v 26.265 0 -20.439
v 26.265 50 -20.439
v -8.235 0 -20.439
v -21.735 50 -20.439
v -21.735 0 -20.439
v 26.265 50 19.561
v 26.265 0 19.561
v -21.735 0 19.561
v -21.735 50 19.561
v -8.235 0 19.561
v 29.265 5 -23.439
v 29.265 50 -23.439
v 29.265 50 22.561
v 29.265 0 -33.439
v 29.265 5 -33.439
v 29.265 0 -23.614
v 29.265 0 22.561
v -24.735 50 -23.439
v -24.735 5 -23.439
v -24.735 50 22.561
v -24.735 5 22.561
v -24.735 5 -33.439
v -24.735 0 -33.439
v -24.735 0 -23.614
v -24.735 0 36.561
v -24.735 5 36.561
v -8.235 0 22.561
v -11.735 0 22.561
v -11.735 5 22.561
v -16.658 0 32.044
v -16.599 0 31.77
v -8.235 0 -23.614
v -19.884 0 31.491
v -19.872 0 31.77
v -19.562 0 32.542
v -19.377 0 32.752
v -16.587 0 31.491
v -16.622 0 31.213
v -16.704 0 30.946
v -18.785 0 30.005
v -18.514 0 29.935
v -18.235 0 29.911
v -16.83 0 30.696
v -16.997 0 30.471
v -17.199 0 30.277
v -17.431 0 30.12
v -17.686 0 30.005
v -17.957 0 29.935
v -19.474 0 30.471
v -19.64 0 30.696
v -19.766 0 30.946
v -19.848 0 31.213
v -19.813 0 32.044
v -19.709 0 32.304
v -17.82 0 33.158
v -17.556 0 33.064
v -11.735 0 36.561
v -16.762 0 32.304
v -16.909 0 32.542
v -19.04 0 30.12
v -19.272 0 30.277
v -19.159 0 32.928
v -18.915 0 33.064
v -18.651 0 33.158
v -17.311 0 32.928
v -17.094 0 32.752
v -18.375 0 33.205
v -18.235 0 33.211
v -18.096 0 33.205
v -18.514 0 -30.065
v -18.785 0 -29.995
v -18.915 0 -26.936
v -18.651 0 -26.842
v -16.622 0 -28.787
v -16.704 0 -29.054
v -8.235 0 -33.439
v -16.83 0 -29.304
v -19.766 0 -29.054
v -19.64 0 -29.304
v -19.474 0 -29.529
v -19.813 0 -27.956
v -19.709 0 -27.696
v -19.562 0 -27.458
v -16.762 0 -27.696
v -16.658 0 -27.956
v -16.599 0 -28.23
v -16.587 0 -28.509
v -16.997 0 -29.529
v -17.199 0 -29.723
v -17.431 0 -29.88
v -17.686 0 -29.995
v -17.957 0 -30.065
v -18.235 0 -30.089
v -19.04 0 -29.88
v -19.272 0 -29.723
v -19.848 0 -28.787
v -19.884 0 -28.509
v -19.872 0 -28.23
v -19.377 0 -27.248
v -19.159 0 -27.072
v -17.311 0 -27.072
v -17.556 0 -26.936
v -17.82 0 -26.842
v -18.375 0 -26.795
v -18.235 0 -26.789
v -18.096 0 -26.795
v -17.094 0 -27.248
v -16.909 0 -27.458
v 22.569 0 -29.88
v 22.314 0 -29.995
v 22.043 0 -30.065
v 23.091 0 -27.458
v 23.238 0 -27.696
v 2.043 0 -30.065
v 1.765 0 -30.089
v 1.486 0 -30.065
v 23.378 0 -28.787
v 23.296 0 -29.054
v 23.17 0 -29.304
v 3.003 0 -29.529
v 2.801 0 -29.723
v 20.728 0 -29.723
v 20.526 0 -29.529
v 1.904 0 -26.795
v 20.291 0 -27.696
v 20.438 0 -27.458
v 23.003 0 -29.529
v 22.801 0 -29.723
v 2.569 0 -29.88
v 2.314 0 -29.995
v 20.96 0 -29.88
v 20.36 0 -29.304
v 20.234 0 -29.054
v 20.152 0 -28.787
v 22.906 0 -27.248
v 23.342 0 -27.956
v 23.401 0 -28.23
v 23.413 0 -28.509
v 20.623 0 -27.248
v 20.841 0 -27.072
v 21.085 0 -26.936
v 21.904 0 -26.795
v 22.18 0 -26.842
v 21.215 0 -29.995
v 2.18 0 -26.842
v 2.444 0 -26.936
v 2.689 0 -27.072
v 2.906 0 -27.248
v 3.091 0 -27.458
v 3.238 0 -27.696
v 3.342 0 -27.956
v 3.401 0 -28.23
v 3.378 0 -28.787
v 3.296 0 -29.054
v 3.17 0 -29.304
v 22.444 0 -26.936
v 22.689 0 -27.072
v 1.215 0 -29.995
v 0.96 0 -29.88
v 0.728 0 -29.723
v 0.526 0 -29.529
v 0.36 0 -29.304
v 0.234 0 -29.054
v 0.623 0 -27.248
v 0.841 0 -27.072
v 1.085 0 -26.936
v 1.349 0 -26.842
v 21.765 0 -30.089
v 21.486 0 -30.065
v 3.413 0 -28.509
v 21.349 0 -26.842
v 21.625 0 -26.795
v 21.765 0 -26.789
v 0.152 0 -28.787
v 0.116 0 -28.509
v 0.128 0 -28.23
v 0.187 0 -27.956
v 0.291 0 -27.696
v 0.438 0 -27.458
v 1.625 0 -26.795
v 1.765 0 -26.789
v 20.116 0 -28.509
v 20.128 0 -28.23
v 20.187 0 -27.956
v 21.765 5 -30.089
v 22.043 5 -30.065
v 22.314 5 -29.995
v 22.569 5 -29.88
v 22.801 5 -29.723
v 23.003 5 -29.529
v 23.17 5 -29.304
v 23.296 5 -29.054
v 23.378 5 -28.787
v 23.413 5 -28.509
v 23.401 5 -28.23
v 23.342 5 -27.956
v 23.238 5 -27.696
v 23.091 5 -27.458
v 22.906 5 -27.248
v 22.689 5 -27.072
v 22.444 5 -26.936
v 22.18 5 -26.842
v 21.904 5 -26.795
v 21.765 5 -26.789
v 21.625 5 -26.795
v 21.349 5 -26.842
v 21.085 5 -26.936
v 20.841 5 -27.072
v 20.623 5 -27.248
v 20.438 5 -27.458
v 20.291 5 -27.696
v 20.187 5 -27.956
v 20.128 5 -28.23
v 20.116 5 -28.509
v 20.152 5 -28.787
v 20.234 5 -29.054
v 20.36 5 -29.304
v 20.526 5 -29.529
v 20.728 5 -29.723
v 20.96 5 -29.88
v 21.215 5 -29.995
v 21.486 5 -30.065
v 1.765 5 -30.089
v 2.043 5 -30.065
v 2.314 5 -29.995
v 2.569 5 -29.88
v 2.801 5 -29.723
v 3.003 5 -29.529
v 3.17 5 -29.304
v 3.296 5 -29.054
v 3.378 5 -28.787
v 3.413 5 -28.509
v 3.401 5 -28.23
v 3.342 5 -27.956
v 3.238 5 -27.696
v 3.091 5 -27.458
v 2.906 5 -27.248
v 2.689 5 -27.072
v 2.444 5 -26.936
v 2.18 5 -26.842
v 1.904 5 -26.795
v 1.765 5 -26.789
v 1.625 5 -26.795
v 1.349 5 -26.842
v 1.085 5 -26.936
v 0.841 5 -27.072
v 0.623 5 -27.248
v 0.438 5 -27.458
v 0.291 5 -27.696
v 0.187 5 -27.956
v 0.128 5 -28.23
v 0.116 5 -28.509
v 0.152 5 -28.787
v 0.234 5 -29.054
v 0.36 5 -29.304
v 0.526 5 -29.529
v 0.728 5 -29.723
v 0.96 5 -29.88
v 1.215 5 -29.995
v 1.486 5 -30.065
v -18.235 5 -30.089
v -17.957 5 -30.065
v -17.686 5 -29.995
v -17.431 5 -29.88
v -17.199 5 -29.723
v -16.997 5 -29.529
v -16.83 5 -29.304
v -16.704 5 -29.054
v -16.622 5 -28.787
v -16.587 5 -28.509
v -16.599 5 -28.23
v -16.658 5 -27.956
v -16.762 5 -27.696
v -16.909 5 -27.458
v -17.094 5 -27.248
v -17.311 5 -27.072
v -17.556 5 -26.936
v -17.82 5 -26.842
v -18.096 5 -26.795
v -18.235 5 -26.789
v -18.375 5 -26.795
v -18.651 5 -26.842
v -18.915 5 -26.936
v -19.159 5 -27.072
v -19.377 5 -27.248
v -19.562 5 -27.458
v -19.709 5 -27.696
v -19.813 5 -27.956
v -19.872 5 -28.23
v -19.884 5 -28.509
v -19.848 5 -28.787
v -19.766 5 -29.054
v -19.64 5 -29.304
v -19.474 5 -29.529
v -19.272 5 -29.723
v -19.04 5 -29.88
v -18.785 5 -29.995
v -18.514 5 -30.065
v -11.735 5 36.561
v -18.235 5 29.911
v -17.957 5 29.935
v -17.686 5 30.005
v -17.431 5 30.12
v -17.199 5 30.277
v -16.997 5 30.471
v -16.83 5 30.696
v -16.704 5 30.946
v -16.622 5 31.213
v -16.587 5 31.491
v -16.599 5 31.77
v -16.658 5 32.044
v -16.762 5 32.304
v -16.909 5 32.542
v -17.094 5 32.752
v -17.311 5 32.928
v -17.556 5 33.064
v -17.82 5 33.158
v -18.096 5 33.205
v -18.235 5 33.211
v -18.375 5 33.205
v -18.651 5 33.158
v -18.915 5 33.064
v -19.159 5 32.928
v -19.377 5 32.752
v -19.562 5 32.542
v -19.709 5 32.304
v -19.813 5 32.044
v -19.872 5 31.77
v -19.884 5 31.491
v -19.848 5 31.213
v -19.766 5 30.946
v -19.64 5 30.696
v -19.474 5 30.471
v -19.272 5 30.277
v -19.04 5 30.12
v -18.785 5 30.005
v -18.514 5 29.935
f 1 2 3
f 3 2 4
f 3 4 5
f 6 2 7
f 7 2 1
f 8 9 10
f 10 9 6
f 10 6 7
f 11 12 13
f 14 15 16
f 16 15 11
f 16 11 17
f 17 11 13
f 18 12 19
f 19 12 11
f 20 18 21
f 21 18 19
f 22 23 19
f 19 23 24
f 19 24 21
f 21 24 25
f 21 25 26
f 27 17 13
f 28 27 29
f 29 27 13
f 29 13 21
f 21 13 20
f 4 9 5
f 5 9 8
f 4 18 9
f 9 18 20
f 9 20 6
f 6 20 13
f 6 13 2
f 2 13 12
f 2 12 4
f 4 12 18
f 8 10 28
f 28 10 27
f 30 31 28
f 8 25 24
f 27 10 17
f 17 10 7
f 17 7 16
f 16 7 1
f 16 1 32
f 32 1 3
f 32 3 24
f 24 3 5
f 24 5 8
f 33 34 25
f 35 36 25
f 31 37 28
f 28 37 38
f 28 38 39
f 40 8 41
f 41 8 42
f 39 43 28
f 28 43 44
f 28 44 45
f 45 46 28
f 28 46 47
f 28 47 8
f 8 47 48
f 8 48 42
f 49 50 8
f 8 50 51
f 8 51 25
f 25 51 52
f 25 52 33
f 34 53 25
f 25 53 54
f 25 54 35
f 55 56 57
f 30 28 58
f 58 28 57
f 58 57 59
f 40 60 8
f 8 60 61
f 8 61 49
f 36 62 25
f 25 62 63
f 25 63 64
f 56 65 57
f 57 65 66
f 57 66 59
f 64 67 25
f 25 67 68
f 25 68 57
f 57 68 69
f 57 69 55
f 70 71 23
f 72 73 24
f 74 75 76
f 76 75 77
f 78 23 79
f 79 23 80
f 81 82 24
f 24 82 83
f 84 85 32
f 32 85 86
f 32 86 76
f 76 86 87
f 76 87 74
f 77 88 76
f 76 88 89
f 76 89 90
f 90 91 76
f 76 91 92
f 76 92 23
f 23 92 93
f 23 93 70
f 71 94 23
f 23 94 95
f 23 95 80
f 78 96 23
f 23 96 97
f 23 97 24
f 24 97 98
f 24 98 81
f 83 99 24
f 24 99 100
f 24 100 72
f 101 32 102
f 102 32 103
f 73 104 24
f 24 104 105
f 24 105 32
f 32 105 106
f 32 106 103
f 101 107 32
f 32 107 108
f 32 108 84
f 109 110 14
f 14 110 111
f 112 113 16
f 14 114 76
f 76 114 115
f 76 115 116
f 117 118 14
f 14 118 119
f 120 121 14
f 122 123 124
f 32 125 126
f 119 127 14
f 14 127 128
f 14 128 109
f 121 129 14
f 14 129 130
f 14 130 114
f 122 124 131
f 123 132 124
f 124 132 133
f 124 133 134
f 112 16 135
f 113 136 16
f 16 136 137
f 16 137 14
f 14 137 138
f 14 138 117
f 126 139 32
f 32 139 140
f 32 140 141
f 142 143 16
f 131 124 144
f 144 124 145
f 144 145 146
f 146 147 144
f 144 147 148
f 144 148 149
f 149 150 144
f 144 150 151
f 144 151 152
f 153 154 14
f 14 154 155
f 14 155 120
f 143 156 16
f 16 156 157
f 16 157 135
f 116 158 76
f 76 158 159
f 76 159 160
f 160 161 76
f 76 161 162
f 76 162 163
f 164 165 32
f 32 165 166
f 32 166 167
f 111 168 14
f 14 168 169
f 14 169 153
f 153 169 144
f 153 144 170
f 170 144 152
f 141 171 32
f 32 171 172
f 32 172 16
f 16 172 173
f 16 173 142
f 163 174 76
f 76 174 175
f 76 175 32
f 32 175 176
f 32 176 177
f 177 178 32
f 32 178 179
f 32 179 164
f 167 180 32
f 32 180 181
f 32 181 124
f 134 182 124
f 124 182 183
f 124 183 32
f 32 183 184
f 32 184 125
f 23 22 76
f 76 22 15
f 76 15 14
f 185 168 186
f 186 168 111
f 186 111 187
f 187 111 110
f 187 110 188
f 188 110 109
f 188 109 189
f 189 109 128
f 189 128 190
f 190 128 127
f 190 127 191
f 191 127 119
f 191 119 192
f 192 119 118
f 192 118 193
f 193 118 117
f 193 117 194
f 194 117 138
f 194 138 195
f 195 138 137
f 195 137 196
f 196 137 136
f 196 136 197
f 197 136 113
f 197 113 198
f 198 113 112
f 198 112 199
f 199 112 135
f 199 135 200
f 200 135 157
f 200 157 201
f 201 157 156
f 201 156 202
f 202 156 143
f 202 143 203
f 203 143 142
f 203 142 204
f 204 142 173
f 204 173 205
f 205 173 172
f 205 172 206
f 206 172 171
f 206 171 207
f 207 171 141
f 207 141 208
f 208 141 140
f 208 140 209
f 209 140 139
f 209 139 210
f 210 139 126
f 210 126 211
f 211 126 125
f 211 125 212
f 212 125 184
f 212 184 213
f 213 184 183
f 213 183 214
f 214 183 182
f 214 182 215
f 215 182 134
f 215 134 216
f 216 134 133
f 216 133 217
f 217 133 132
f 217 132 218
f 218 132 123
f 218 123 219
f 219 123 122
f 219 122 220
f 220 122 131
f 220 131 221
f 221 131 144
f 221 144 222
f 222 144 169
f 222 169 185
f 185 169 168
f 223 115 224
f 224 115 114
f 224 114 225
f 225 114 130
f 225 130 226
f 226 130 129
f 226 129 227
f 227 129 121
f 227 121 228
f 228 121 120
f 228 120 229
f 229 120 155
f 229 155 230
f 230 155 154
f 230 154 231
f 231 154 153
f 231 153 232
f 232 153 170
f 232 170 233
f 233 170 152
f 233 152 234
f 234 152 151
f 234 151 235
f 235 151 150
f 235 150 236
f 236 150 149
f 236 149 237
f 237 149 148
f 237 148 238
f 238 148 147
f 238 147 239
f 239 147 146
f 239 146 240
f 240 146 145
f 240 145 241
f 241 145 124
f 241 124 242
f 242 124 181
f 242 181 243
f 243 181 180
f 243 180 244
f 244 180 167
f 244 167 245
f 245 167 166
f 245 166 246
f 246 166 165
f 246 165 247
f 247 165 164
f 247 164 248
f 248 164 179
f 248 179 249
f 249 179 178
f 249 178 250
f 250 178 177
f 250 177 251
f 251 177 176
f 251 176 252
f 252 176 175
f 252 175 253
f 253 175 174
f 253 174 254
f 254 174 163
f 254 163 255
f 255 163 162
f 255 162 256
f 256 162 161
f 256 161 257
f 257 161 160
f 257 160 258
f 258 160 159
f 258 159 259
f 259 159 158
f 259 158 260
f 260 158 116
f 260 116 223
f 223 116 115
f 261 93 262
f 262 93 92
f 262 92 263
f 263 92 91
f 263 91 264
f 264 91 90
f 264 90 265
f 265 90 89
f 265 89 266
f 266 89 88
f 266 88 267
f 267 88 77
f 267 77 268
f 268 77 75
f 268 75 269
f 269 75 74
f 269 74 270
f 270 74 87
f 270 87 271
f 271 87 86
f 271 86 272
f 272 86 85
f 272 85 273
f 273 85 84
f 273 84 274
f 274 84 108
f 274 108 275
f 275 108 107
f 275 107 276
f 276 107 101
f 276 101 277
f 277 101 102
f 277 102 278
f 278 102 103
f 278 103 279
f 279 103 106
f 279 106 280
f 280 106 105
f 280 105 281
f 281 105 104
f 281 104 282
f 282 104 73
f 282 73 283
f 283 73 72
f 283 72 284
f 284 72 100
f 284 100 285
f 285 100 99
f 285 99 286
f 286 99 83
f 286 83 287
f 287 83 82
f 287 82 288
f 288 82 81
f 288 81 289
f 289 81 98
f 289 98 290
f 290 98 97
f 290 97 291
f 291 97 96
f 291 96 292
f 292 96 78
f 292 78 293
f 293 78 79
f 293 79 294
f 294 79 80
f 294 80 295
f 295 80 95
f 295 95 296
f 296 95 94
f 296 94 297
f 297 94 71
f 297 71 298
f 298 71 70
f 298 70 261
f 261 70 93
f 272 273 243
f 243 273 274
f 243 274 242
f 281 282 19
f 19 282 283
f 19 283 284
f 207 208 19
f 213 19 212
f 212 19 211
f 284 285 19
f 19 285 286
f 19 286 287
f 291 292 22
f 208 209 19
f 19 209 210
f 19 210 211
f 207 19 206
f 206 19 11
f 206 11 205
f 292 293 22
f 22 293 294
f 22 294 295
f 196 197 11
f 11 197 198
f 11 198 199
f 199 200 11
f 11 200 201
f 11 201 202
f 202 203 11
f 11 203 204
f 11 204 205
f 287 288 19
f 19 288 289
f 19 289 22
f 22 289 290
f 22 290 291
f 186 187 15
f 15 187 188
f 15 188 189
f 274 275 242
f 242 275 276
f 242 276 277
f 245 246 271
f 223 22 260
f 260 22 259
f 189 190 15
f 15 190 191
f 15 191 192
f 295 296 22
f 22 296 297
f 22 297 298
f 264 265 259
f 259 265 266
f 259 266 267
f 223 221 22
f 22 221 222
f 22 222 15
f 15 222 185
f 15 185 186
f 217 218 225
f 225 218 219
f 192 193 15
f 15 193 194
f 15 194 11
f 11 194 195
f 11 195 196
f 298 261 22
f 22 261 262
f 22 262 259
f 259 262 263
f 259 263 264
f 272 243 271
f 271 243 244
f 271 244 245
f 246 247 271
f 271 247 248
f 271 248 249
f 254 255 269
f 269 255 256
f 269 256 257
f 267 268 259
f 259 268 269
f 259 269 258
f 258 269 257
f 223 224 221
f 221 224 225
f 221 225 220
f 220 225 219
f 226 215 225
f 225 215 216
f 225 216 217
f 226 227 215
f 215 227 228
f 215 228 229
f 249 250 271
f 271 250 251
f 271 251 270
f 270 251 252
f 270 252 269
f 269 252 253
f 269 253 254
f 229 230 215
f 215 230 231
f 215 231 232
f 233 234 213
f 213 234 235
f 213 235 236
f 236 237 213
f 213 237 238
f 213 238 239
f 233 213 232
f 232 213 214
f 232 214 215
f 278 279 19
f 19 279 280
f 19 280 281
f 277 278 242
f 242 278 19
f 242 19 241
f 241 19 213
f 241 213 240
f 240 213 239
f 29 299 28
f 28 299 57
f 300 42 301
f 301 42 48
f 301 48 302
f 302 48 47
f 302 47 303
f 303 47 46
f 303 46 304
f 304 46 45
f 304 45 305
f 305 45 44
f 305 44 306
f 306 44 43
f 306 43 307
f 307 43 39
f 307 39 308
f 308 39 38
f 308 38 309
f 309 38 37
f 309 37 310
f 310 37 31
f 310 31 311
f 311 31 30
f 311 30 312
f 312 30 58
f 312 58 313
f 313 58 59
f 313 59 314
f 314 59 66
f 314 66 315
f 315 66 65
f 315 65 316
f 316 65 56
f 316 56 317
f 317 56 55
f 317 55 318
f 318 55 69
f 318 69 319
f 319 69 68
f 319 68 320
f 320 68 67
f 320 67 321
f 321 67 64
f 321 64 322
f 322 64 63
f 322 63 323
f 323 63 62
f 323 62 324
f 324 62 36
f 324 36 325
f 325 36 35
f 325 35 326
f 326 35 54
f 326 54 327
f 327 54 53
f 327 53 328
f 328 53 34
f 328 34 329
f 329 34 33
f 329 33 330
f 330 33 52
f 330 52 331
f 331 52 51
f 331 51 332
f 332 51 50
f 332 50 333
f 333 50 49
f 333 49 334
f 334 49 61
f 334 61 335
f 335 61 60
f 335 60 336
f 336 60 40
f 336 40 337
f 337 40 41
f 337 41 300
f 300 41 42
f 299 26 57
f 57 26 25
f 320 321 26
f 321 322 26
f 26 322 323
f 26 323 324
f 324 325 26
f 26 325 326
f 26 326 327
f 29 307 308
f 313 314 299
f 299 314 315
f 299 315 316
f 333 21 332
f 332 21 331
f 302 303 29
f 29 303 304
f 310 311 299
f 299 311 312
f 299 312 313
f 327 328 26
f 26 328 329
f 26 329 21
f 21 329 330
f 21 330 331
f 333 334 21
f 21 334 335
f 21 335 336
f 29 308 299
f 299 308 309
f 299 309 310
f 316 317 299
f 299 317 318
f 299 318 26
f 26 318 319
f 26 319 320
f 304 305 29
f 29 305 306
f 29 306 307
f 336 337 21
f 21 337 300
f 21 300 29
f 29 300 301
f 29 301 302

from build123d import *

# Parameters (mm, degrees)
SKETCH1_W           = 54
SKETCH1_H           = 46
SKETCH1_W_2         = 48
SKETCH1_H_2         = 40
BOSS_EXTRUDE1_DEPTH = 50
SKETCH2_W           = 54
SKETCH2_H           = 10
SKETCH2_R           = 1.65
SKETCH2_W_2         = 13
SKETCH2_H_2         = 14
BOSS_EXTRUDE2_DEPTH = 5


with BuildPart() as part:
    # Sketch1 → Boss-Extrude1 (new body)
    with BuildSketch(Plane(origin=(0, 0, 0), x_dir=(1, 0, 0), z_dir=(0, 1, 0))):
        with Locations((2.264566872, 0.439206794)):
            Rectangle(SKETCH1_W, SKETCH1_H)
        with Locations((2.264566872, 0.439206794)):
            Rectangle(SKETCH1_W_2, SKETCH1_H_2, mode=Mode.SUBTRACT)
    extrude(amount=BOSS_EXTRUDE1_DEPTH)

    # Sketch2 → Boss-Extrude2 (add)
    # profile 1 of 2: a face of its own
    with BuildSketch(Plane(origin=(0, 0, 0), x_dir=(1, 0, 0), z_dir=(0, 1, 0))):
        with Locations((2.264566872, 28.439206794)):
            Rectangle(SKETCH2_W, SKETCH2_H)
        with Locations(Location((-18.235433128, 28.439206794, 0), (0, 0, 270))):
            Circle(SKETCH2_R, mode=Mode.SUBTRACT)
        with Locations(Location((1.764566872, 28.439206794, 0), (0, 0, 270))):
            Circle(SKETCH2_R, mode=Mode.SUBTRACT)
        with Locations(Location((21.764566872, 28.439206794, 0), (0, 0, 270))):
            Circle(SKETCH2_R, mode=Mode.SUBTRACT)
    # profile 2 of 2: a face of its own
    with BuildSketch(Plane(origin=(0, 0, 0), x_dir=(1, 0, 0), z_dir=(0, 1, 0))):
        with Locations((-18.235433128, -29.560793206)):
            Rectangle(SKETCH2_W_2, SKETCH2_H_2)
        with Locations(Location((-18.235433128, -31.560793206, 0), (0, 0, 270))):
            Circle(SKETCH2_R, mode=Mode.SUBTRACT)
    extrude(amount=BOSS_EXTRUDE2_DEPTH)


solid = part.part
